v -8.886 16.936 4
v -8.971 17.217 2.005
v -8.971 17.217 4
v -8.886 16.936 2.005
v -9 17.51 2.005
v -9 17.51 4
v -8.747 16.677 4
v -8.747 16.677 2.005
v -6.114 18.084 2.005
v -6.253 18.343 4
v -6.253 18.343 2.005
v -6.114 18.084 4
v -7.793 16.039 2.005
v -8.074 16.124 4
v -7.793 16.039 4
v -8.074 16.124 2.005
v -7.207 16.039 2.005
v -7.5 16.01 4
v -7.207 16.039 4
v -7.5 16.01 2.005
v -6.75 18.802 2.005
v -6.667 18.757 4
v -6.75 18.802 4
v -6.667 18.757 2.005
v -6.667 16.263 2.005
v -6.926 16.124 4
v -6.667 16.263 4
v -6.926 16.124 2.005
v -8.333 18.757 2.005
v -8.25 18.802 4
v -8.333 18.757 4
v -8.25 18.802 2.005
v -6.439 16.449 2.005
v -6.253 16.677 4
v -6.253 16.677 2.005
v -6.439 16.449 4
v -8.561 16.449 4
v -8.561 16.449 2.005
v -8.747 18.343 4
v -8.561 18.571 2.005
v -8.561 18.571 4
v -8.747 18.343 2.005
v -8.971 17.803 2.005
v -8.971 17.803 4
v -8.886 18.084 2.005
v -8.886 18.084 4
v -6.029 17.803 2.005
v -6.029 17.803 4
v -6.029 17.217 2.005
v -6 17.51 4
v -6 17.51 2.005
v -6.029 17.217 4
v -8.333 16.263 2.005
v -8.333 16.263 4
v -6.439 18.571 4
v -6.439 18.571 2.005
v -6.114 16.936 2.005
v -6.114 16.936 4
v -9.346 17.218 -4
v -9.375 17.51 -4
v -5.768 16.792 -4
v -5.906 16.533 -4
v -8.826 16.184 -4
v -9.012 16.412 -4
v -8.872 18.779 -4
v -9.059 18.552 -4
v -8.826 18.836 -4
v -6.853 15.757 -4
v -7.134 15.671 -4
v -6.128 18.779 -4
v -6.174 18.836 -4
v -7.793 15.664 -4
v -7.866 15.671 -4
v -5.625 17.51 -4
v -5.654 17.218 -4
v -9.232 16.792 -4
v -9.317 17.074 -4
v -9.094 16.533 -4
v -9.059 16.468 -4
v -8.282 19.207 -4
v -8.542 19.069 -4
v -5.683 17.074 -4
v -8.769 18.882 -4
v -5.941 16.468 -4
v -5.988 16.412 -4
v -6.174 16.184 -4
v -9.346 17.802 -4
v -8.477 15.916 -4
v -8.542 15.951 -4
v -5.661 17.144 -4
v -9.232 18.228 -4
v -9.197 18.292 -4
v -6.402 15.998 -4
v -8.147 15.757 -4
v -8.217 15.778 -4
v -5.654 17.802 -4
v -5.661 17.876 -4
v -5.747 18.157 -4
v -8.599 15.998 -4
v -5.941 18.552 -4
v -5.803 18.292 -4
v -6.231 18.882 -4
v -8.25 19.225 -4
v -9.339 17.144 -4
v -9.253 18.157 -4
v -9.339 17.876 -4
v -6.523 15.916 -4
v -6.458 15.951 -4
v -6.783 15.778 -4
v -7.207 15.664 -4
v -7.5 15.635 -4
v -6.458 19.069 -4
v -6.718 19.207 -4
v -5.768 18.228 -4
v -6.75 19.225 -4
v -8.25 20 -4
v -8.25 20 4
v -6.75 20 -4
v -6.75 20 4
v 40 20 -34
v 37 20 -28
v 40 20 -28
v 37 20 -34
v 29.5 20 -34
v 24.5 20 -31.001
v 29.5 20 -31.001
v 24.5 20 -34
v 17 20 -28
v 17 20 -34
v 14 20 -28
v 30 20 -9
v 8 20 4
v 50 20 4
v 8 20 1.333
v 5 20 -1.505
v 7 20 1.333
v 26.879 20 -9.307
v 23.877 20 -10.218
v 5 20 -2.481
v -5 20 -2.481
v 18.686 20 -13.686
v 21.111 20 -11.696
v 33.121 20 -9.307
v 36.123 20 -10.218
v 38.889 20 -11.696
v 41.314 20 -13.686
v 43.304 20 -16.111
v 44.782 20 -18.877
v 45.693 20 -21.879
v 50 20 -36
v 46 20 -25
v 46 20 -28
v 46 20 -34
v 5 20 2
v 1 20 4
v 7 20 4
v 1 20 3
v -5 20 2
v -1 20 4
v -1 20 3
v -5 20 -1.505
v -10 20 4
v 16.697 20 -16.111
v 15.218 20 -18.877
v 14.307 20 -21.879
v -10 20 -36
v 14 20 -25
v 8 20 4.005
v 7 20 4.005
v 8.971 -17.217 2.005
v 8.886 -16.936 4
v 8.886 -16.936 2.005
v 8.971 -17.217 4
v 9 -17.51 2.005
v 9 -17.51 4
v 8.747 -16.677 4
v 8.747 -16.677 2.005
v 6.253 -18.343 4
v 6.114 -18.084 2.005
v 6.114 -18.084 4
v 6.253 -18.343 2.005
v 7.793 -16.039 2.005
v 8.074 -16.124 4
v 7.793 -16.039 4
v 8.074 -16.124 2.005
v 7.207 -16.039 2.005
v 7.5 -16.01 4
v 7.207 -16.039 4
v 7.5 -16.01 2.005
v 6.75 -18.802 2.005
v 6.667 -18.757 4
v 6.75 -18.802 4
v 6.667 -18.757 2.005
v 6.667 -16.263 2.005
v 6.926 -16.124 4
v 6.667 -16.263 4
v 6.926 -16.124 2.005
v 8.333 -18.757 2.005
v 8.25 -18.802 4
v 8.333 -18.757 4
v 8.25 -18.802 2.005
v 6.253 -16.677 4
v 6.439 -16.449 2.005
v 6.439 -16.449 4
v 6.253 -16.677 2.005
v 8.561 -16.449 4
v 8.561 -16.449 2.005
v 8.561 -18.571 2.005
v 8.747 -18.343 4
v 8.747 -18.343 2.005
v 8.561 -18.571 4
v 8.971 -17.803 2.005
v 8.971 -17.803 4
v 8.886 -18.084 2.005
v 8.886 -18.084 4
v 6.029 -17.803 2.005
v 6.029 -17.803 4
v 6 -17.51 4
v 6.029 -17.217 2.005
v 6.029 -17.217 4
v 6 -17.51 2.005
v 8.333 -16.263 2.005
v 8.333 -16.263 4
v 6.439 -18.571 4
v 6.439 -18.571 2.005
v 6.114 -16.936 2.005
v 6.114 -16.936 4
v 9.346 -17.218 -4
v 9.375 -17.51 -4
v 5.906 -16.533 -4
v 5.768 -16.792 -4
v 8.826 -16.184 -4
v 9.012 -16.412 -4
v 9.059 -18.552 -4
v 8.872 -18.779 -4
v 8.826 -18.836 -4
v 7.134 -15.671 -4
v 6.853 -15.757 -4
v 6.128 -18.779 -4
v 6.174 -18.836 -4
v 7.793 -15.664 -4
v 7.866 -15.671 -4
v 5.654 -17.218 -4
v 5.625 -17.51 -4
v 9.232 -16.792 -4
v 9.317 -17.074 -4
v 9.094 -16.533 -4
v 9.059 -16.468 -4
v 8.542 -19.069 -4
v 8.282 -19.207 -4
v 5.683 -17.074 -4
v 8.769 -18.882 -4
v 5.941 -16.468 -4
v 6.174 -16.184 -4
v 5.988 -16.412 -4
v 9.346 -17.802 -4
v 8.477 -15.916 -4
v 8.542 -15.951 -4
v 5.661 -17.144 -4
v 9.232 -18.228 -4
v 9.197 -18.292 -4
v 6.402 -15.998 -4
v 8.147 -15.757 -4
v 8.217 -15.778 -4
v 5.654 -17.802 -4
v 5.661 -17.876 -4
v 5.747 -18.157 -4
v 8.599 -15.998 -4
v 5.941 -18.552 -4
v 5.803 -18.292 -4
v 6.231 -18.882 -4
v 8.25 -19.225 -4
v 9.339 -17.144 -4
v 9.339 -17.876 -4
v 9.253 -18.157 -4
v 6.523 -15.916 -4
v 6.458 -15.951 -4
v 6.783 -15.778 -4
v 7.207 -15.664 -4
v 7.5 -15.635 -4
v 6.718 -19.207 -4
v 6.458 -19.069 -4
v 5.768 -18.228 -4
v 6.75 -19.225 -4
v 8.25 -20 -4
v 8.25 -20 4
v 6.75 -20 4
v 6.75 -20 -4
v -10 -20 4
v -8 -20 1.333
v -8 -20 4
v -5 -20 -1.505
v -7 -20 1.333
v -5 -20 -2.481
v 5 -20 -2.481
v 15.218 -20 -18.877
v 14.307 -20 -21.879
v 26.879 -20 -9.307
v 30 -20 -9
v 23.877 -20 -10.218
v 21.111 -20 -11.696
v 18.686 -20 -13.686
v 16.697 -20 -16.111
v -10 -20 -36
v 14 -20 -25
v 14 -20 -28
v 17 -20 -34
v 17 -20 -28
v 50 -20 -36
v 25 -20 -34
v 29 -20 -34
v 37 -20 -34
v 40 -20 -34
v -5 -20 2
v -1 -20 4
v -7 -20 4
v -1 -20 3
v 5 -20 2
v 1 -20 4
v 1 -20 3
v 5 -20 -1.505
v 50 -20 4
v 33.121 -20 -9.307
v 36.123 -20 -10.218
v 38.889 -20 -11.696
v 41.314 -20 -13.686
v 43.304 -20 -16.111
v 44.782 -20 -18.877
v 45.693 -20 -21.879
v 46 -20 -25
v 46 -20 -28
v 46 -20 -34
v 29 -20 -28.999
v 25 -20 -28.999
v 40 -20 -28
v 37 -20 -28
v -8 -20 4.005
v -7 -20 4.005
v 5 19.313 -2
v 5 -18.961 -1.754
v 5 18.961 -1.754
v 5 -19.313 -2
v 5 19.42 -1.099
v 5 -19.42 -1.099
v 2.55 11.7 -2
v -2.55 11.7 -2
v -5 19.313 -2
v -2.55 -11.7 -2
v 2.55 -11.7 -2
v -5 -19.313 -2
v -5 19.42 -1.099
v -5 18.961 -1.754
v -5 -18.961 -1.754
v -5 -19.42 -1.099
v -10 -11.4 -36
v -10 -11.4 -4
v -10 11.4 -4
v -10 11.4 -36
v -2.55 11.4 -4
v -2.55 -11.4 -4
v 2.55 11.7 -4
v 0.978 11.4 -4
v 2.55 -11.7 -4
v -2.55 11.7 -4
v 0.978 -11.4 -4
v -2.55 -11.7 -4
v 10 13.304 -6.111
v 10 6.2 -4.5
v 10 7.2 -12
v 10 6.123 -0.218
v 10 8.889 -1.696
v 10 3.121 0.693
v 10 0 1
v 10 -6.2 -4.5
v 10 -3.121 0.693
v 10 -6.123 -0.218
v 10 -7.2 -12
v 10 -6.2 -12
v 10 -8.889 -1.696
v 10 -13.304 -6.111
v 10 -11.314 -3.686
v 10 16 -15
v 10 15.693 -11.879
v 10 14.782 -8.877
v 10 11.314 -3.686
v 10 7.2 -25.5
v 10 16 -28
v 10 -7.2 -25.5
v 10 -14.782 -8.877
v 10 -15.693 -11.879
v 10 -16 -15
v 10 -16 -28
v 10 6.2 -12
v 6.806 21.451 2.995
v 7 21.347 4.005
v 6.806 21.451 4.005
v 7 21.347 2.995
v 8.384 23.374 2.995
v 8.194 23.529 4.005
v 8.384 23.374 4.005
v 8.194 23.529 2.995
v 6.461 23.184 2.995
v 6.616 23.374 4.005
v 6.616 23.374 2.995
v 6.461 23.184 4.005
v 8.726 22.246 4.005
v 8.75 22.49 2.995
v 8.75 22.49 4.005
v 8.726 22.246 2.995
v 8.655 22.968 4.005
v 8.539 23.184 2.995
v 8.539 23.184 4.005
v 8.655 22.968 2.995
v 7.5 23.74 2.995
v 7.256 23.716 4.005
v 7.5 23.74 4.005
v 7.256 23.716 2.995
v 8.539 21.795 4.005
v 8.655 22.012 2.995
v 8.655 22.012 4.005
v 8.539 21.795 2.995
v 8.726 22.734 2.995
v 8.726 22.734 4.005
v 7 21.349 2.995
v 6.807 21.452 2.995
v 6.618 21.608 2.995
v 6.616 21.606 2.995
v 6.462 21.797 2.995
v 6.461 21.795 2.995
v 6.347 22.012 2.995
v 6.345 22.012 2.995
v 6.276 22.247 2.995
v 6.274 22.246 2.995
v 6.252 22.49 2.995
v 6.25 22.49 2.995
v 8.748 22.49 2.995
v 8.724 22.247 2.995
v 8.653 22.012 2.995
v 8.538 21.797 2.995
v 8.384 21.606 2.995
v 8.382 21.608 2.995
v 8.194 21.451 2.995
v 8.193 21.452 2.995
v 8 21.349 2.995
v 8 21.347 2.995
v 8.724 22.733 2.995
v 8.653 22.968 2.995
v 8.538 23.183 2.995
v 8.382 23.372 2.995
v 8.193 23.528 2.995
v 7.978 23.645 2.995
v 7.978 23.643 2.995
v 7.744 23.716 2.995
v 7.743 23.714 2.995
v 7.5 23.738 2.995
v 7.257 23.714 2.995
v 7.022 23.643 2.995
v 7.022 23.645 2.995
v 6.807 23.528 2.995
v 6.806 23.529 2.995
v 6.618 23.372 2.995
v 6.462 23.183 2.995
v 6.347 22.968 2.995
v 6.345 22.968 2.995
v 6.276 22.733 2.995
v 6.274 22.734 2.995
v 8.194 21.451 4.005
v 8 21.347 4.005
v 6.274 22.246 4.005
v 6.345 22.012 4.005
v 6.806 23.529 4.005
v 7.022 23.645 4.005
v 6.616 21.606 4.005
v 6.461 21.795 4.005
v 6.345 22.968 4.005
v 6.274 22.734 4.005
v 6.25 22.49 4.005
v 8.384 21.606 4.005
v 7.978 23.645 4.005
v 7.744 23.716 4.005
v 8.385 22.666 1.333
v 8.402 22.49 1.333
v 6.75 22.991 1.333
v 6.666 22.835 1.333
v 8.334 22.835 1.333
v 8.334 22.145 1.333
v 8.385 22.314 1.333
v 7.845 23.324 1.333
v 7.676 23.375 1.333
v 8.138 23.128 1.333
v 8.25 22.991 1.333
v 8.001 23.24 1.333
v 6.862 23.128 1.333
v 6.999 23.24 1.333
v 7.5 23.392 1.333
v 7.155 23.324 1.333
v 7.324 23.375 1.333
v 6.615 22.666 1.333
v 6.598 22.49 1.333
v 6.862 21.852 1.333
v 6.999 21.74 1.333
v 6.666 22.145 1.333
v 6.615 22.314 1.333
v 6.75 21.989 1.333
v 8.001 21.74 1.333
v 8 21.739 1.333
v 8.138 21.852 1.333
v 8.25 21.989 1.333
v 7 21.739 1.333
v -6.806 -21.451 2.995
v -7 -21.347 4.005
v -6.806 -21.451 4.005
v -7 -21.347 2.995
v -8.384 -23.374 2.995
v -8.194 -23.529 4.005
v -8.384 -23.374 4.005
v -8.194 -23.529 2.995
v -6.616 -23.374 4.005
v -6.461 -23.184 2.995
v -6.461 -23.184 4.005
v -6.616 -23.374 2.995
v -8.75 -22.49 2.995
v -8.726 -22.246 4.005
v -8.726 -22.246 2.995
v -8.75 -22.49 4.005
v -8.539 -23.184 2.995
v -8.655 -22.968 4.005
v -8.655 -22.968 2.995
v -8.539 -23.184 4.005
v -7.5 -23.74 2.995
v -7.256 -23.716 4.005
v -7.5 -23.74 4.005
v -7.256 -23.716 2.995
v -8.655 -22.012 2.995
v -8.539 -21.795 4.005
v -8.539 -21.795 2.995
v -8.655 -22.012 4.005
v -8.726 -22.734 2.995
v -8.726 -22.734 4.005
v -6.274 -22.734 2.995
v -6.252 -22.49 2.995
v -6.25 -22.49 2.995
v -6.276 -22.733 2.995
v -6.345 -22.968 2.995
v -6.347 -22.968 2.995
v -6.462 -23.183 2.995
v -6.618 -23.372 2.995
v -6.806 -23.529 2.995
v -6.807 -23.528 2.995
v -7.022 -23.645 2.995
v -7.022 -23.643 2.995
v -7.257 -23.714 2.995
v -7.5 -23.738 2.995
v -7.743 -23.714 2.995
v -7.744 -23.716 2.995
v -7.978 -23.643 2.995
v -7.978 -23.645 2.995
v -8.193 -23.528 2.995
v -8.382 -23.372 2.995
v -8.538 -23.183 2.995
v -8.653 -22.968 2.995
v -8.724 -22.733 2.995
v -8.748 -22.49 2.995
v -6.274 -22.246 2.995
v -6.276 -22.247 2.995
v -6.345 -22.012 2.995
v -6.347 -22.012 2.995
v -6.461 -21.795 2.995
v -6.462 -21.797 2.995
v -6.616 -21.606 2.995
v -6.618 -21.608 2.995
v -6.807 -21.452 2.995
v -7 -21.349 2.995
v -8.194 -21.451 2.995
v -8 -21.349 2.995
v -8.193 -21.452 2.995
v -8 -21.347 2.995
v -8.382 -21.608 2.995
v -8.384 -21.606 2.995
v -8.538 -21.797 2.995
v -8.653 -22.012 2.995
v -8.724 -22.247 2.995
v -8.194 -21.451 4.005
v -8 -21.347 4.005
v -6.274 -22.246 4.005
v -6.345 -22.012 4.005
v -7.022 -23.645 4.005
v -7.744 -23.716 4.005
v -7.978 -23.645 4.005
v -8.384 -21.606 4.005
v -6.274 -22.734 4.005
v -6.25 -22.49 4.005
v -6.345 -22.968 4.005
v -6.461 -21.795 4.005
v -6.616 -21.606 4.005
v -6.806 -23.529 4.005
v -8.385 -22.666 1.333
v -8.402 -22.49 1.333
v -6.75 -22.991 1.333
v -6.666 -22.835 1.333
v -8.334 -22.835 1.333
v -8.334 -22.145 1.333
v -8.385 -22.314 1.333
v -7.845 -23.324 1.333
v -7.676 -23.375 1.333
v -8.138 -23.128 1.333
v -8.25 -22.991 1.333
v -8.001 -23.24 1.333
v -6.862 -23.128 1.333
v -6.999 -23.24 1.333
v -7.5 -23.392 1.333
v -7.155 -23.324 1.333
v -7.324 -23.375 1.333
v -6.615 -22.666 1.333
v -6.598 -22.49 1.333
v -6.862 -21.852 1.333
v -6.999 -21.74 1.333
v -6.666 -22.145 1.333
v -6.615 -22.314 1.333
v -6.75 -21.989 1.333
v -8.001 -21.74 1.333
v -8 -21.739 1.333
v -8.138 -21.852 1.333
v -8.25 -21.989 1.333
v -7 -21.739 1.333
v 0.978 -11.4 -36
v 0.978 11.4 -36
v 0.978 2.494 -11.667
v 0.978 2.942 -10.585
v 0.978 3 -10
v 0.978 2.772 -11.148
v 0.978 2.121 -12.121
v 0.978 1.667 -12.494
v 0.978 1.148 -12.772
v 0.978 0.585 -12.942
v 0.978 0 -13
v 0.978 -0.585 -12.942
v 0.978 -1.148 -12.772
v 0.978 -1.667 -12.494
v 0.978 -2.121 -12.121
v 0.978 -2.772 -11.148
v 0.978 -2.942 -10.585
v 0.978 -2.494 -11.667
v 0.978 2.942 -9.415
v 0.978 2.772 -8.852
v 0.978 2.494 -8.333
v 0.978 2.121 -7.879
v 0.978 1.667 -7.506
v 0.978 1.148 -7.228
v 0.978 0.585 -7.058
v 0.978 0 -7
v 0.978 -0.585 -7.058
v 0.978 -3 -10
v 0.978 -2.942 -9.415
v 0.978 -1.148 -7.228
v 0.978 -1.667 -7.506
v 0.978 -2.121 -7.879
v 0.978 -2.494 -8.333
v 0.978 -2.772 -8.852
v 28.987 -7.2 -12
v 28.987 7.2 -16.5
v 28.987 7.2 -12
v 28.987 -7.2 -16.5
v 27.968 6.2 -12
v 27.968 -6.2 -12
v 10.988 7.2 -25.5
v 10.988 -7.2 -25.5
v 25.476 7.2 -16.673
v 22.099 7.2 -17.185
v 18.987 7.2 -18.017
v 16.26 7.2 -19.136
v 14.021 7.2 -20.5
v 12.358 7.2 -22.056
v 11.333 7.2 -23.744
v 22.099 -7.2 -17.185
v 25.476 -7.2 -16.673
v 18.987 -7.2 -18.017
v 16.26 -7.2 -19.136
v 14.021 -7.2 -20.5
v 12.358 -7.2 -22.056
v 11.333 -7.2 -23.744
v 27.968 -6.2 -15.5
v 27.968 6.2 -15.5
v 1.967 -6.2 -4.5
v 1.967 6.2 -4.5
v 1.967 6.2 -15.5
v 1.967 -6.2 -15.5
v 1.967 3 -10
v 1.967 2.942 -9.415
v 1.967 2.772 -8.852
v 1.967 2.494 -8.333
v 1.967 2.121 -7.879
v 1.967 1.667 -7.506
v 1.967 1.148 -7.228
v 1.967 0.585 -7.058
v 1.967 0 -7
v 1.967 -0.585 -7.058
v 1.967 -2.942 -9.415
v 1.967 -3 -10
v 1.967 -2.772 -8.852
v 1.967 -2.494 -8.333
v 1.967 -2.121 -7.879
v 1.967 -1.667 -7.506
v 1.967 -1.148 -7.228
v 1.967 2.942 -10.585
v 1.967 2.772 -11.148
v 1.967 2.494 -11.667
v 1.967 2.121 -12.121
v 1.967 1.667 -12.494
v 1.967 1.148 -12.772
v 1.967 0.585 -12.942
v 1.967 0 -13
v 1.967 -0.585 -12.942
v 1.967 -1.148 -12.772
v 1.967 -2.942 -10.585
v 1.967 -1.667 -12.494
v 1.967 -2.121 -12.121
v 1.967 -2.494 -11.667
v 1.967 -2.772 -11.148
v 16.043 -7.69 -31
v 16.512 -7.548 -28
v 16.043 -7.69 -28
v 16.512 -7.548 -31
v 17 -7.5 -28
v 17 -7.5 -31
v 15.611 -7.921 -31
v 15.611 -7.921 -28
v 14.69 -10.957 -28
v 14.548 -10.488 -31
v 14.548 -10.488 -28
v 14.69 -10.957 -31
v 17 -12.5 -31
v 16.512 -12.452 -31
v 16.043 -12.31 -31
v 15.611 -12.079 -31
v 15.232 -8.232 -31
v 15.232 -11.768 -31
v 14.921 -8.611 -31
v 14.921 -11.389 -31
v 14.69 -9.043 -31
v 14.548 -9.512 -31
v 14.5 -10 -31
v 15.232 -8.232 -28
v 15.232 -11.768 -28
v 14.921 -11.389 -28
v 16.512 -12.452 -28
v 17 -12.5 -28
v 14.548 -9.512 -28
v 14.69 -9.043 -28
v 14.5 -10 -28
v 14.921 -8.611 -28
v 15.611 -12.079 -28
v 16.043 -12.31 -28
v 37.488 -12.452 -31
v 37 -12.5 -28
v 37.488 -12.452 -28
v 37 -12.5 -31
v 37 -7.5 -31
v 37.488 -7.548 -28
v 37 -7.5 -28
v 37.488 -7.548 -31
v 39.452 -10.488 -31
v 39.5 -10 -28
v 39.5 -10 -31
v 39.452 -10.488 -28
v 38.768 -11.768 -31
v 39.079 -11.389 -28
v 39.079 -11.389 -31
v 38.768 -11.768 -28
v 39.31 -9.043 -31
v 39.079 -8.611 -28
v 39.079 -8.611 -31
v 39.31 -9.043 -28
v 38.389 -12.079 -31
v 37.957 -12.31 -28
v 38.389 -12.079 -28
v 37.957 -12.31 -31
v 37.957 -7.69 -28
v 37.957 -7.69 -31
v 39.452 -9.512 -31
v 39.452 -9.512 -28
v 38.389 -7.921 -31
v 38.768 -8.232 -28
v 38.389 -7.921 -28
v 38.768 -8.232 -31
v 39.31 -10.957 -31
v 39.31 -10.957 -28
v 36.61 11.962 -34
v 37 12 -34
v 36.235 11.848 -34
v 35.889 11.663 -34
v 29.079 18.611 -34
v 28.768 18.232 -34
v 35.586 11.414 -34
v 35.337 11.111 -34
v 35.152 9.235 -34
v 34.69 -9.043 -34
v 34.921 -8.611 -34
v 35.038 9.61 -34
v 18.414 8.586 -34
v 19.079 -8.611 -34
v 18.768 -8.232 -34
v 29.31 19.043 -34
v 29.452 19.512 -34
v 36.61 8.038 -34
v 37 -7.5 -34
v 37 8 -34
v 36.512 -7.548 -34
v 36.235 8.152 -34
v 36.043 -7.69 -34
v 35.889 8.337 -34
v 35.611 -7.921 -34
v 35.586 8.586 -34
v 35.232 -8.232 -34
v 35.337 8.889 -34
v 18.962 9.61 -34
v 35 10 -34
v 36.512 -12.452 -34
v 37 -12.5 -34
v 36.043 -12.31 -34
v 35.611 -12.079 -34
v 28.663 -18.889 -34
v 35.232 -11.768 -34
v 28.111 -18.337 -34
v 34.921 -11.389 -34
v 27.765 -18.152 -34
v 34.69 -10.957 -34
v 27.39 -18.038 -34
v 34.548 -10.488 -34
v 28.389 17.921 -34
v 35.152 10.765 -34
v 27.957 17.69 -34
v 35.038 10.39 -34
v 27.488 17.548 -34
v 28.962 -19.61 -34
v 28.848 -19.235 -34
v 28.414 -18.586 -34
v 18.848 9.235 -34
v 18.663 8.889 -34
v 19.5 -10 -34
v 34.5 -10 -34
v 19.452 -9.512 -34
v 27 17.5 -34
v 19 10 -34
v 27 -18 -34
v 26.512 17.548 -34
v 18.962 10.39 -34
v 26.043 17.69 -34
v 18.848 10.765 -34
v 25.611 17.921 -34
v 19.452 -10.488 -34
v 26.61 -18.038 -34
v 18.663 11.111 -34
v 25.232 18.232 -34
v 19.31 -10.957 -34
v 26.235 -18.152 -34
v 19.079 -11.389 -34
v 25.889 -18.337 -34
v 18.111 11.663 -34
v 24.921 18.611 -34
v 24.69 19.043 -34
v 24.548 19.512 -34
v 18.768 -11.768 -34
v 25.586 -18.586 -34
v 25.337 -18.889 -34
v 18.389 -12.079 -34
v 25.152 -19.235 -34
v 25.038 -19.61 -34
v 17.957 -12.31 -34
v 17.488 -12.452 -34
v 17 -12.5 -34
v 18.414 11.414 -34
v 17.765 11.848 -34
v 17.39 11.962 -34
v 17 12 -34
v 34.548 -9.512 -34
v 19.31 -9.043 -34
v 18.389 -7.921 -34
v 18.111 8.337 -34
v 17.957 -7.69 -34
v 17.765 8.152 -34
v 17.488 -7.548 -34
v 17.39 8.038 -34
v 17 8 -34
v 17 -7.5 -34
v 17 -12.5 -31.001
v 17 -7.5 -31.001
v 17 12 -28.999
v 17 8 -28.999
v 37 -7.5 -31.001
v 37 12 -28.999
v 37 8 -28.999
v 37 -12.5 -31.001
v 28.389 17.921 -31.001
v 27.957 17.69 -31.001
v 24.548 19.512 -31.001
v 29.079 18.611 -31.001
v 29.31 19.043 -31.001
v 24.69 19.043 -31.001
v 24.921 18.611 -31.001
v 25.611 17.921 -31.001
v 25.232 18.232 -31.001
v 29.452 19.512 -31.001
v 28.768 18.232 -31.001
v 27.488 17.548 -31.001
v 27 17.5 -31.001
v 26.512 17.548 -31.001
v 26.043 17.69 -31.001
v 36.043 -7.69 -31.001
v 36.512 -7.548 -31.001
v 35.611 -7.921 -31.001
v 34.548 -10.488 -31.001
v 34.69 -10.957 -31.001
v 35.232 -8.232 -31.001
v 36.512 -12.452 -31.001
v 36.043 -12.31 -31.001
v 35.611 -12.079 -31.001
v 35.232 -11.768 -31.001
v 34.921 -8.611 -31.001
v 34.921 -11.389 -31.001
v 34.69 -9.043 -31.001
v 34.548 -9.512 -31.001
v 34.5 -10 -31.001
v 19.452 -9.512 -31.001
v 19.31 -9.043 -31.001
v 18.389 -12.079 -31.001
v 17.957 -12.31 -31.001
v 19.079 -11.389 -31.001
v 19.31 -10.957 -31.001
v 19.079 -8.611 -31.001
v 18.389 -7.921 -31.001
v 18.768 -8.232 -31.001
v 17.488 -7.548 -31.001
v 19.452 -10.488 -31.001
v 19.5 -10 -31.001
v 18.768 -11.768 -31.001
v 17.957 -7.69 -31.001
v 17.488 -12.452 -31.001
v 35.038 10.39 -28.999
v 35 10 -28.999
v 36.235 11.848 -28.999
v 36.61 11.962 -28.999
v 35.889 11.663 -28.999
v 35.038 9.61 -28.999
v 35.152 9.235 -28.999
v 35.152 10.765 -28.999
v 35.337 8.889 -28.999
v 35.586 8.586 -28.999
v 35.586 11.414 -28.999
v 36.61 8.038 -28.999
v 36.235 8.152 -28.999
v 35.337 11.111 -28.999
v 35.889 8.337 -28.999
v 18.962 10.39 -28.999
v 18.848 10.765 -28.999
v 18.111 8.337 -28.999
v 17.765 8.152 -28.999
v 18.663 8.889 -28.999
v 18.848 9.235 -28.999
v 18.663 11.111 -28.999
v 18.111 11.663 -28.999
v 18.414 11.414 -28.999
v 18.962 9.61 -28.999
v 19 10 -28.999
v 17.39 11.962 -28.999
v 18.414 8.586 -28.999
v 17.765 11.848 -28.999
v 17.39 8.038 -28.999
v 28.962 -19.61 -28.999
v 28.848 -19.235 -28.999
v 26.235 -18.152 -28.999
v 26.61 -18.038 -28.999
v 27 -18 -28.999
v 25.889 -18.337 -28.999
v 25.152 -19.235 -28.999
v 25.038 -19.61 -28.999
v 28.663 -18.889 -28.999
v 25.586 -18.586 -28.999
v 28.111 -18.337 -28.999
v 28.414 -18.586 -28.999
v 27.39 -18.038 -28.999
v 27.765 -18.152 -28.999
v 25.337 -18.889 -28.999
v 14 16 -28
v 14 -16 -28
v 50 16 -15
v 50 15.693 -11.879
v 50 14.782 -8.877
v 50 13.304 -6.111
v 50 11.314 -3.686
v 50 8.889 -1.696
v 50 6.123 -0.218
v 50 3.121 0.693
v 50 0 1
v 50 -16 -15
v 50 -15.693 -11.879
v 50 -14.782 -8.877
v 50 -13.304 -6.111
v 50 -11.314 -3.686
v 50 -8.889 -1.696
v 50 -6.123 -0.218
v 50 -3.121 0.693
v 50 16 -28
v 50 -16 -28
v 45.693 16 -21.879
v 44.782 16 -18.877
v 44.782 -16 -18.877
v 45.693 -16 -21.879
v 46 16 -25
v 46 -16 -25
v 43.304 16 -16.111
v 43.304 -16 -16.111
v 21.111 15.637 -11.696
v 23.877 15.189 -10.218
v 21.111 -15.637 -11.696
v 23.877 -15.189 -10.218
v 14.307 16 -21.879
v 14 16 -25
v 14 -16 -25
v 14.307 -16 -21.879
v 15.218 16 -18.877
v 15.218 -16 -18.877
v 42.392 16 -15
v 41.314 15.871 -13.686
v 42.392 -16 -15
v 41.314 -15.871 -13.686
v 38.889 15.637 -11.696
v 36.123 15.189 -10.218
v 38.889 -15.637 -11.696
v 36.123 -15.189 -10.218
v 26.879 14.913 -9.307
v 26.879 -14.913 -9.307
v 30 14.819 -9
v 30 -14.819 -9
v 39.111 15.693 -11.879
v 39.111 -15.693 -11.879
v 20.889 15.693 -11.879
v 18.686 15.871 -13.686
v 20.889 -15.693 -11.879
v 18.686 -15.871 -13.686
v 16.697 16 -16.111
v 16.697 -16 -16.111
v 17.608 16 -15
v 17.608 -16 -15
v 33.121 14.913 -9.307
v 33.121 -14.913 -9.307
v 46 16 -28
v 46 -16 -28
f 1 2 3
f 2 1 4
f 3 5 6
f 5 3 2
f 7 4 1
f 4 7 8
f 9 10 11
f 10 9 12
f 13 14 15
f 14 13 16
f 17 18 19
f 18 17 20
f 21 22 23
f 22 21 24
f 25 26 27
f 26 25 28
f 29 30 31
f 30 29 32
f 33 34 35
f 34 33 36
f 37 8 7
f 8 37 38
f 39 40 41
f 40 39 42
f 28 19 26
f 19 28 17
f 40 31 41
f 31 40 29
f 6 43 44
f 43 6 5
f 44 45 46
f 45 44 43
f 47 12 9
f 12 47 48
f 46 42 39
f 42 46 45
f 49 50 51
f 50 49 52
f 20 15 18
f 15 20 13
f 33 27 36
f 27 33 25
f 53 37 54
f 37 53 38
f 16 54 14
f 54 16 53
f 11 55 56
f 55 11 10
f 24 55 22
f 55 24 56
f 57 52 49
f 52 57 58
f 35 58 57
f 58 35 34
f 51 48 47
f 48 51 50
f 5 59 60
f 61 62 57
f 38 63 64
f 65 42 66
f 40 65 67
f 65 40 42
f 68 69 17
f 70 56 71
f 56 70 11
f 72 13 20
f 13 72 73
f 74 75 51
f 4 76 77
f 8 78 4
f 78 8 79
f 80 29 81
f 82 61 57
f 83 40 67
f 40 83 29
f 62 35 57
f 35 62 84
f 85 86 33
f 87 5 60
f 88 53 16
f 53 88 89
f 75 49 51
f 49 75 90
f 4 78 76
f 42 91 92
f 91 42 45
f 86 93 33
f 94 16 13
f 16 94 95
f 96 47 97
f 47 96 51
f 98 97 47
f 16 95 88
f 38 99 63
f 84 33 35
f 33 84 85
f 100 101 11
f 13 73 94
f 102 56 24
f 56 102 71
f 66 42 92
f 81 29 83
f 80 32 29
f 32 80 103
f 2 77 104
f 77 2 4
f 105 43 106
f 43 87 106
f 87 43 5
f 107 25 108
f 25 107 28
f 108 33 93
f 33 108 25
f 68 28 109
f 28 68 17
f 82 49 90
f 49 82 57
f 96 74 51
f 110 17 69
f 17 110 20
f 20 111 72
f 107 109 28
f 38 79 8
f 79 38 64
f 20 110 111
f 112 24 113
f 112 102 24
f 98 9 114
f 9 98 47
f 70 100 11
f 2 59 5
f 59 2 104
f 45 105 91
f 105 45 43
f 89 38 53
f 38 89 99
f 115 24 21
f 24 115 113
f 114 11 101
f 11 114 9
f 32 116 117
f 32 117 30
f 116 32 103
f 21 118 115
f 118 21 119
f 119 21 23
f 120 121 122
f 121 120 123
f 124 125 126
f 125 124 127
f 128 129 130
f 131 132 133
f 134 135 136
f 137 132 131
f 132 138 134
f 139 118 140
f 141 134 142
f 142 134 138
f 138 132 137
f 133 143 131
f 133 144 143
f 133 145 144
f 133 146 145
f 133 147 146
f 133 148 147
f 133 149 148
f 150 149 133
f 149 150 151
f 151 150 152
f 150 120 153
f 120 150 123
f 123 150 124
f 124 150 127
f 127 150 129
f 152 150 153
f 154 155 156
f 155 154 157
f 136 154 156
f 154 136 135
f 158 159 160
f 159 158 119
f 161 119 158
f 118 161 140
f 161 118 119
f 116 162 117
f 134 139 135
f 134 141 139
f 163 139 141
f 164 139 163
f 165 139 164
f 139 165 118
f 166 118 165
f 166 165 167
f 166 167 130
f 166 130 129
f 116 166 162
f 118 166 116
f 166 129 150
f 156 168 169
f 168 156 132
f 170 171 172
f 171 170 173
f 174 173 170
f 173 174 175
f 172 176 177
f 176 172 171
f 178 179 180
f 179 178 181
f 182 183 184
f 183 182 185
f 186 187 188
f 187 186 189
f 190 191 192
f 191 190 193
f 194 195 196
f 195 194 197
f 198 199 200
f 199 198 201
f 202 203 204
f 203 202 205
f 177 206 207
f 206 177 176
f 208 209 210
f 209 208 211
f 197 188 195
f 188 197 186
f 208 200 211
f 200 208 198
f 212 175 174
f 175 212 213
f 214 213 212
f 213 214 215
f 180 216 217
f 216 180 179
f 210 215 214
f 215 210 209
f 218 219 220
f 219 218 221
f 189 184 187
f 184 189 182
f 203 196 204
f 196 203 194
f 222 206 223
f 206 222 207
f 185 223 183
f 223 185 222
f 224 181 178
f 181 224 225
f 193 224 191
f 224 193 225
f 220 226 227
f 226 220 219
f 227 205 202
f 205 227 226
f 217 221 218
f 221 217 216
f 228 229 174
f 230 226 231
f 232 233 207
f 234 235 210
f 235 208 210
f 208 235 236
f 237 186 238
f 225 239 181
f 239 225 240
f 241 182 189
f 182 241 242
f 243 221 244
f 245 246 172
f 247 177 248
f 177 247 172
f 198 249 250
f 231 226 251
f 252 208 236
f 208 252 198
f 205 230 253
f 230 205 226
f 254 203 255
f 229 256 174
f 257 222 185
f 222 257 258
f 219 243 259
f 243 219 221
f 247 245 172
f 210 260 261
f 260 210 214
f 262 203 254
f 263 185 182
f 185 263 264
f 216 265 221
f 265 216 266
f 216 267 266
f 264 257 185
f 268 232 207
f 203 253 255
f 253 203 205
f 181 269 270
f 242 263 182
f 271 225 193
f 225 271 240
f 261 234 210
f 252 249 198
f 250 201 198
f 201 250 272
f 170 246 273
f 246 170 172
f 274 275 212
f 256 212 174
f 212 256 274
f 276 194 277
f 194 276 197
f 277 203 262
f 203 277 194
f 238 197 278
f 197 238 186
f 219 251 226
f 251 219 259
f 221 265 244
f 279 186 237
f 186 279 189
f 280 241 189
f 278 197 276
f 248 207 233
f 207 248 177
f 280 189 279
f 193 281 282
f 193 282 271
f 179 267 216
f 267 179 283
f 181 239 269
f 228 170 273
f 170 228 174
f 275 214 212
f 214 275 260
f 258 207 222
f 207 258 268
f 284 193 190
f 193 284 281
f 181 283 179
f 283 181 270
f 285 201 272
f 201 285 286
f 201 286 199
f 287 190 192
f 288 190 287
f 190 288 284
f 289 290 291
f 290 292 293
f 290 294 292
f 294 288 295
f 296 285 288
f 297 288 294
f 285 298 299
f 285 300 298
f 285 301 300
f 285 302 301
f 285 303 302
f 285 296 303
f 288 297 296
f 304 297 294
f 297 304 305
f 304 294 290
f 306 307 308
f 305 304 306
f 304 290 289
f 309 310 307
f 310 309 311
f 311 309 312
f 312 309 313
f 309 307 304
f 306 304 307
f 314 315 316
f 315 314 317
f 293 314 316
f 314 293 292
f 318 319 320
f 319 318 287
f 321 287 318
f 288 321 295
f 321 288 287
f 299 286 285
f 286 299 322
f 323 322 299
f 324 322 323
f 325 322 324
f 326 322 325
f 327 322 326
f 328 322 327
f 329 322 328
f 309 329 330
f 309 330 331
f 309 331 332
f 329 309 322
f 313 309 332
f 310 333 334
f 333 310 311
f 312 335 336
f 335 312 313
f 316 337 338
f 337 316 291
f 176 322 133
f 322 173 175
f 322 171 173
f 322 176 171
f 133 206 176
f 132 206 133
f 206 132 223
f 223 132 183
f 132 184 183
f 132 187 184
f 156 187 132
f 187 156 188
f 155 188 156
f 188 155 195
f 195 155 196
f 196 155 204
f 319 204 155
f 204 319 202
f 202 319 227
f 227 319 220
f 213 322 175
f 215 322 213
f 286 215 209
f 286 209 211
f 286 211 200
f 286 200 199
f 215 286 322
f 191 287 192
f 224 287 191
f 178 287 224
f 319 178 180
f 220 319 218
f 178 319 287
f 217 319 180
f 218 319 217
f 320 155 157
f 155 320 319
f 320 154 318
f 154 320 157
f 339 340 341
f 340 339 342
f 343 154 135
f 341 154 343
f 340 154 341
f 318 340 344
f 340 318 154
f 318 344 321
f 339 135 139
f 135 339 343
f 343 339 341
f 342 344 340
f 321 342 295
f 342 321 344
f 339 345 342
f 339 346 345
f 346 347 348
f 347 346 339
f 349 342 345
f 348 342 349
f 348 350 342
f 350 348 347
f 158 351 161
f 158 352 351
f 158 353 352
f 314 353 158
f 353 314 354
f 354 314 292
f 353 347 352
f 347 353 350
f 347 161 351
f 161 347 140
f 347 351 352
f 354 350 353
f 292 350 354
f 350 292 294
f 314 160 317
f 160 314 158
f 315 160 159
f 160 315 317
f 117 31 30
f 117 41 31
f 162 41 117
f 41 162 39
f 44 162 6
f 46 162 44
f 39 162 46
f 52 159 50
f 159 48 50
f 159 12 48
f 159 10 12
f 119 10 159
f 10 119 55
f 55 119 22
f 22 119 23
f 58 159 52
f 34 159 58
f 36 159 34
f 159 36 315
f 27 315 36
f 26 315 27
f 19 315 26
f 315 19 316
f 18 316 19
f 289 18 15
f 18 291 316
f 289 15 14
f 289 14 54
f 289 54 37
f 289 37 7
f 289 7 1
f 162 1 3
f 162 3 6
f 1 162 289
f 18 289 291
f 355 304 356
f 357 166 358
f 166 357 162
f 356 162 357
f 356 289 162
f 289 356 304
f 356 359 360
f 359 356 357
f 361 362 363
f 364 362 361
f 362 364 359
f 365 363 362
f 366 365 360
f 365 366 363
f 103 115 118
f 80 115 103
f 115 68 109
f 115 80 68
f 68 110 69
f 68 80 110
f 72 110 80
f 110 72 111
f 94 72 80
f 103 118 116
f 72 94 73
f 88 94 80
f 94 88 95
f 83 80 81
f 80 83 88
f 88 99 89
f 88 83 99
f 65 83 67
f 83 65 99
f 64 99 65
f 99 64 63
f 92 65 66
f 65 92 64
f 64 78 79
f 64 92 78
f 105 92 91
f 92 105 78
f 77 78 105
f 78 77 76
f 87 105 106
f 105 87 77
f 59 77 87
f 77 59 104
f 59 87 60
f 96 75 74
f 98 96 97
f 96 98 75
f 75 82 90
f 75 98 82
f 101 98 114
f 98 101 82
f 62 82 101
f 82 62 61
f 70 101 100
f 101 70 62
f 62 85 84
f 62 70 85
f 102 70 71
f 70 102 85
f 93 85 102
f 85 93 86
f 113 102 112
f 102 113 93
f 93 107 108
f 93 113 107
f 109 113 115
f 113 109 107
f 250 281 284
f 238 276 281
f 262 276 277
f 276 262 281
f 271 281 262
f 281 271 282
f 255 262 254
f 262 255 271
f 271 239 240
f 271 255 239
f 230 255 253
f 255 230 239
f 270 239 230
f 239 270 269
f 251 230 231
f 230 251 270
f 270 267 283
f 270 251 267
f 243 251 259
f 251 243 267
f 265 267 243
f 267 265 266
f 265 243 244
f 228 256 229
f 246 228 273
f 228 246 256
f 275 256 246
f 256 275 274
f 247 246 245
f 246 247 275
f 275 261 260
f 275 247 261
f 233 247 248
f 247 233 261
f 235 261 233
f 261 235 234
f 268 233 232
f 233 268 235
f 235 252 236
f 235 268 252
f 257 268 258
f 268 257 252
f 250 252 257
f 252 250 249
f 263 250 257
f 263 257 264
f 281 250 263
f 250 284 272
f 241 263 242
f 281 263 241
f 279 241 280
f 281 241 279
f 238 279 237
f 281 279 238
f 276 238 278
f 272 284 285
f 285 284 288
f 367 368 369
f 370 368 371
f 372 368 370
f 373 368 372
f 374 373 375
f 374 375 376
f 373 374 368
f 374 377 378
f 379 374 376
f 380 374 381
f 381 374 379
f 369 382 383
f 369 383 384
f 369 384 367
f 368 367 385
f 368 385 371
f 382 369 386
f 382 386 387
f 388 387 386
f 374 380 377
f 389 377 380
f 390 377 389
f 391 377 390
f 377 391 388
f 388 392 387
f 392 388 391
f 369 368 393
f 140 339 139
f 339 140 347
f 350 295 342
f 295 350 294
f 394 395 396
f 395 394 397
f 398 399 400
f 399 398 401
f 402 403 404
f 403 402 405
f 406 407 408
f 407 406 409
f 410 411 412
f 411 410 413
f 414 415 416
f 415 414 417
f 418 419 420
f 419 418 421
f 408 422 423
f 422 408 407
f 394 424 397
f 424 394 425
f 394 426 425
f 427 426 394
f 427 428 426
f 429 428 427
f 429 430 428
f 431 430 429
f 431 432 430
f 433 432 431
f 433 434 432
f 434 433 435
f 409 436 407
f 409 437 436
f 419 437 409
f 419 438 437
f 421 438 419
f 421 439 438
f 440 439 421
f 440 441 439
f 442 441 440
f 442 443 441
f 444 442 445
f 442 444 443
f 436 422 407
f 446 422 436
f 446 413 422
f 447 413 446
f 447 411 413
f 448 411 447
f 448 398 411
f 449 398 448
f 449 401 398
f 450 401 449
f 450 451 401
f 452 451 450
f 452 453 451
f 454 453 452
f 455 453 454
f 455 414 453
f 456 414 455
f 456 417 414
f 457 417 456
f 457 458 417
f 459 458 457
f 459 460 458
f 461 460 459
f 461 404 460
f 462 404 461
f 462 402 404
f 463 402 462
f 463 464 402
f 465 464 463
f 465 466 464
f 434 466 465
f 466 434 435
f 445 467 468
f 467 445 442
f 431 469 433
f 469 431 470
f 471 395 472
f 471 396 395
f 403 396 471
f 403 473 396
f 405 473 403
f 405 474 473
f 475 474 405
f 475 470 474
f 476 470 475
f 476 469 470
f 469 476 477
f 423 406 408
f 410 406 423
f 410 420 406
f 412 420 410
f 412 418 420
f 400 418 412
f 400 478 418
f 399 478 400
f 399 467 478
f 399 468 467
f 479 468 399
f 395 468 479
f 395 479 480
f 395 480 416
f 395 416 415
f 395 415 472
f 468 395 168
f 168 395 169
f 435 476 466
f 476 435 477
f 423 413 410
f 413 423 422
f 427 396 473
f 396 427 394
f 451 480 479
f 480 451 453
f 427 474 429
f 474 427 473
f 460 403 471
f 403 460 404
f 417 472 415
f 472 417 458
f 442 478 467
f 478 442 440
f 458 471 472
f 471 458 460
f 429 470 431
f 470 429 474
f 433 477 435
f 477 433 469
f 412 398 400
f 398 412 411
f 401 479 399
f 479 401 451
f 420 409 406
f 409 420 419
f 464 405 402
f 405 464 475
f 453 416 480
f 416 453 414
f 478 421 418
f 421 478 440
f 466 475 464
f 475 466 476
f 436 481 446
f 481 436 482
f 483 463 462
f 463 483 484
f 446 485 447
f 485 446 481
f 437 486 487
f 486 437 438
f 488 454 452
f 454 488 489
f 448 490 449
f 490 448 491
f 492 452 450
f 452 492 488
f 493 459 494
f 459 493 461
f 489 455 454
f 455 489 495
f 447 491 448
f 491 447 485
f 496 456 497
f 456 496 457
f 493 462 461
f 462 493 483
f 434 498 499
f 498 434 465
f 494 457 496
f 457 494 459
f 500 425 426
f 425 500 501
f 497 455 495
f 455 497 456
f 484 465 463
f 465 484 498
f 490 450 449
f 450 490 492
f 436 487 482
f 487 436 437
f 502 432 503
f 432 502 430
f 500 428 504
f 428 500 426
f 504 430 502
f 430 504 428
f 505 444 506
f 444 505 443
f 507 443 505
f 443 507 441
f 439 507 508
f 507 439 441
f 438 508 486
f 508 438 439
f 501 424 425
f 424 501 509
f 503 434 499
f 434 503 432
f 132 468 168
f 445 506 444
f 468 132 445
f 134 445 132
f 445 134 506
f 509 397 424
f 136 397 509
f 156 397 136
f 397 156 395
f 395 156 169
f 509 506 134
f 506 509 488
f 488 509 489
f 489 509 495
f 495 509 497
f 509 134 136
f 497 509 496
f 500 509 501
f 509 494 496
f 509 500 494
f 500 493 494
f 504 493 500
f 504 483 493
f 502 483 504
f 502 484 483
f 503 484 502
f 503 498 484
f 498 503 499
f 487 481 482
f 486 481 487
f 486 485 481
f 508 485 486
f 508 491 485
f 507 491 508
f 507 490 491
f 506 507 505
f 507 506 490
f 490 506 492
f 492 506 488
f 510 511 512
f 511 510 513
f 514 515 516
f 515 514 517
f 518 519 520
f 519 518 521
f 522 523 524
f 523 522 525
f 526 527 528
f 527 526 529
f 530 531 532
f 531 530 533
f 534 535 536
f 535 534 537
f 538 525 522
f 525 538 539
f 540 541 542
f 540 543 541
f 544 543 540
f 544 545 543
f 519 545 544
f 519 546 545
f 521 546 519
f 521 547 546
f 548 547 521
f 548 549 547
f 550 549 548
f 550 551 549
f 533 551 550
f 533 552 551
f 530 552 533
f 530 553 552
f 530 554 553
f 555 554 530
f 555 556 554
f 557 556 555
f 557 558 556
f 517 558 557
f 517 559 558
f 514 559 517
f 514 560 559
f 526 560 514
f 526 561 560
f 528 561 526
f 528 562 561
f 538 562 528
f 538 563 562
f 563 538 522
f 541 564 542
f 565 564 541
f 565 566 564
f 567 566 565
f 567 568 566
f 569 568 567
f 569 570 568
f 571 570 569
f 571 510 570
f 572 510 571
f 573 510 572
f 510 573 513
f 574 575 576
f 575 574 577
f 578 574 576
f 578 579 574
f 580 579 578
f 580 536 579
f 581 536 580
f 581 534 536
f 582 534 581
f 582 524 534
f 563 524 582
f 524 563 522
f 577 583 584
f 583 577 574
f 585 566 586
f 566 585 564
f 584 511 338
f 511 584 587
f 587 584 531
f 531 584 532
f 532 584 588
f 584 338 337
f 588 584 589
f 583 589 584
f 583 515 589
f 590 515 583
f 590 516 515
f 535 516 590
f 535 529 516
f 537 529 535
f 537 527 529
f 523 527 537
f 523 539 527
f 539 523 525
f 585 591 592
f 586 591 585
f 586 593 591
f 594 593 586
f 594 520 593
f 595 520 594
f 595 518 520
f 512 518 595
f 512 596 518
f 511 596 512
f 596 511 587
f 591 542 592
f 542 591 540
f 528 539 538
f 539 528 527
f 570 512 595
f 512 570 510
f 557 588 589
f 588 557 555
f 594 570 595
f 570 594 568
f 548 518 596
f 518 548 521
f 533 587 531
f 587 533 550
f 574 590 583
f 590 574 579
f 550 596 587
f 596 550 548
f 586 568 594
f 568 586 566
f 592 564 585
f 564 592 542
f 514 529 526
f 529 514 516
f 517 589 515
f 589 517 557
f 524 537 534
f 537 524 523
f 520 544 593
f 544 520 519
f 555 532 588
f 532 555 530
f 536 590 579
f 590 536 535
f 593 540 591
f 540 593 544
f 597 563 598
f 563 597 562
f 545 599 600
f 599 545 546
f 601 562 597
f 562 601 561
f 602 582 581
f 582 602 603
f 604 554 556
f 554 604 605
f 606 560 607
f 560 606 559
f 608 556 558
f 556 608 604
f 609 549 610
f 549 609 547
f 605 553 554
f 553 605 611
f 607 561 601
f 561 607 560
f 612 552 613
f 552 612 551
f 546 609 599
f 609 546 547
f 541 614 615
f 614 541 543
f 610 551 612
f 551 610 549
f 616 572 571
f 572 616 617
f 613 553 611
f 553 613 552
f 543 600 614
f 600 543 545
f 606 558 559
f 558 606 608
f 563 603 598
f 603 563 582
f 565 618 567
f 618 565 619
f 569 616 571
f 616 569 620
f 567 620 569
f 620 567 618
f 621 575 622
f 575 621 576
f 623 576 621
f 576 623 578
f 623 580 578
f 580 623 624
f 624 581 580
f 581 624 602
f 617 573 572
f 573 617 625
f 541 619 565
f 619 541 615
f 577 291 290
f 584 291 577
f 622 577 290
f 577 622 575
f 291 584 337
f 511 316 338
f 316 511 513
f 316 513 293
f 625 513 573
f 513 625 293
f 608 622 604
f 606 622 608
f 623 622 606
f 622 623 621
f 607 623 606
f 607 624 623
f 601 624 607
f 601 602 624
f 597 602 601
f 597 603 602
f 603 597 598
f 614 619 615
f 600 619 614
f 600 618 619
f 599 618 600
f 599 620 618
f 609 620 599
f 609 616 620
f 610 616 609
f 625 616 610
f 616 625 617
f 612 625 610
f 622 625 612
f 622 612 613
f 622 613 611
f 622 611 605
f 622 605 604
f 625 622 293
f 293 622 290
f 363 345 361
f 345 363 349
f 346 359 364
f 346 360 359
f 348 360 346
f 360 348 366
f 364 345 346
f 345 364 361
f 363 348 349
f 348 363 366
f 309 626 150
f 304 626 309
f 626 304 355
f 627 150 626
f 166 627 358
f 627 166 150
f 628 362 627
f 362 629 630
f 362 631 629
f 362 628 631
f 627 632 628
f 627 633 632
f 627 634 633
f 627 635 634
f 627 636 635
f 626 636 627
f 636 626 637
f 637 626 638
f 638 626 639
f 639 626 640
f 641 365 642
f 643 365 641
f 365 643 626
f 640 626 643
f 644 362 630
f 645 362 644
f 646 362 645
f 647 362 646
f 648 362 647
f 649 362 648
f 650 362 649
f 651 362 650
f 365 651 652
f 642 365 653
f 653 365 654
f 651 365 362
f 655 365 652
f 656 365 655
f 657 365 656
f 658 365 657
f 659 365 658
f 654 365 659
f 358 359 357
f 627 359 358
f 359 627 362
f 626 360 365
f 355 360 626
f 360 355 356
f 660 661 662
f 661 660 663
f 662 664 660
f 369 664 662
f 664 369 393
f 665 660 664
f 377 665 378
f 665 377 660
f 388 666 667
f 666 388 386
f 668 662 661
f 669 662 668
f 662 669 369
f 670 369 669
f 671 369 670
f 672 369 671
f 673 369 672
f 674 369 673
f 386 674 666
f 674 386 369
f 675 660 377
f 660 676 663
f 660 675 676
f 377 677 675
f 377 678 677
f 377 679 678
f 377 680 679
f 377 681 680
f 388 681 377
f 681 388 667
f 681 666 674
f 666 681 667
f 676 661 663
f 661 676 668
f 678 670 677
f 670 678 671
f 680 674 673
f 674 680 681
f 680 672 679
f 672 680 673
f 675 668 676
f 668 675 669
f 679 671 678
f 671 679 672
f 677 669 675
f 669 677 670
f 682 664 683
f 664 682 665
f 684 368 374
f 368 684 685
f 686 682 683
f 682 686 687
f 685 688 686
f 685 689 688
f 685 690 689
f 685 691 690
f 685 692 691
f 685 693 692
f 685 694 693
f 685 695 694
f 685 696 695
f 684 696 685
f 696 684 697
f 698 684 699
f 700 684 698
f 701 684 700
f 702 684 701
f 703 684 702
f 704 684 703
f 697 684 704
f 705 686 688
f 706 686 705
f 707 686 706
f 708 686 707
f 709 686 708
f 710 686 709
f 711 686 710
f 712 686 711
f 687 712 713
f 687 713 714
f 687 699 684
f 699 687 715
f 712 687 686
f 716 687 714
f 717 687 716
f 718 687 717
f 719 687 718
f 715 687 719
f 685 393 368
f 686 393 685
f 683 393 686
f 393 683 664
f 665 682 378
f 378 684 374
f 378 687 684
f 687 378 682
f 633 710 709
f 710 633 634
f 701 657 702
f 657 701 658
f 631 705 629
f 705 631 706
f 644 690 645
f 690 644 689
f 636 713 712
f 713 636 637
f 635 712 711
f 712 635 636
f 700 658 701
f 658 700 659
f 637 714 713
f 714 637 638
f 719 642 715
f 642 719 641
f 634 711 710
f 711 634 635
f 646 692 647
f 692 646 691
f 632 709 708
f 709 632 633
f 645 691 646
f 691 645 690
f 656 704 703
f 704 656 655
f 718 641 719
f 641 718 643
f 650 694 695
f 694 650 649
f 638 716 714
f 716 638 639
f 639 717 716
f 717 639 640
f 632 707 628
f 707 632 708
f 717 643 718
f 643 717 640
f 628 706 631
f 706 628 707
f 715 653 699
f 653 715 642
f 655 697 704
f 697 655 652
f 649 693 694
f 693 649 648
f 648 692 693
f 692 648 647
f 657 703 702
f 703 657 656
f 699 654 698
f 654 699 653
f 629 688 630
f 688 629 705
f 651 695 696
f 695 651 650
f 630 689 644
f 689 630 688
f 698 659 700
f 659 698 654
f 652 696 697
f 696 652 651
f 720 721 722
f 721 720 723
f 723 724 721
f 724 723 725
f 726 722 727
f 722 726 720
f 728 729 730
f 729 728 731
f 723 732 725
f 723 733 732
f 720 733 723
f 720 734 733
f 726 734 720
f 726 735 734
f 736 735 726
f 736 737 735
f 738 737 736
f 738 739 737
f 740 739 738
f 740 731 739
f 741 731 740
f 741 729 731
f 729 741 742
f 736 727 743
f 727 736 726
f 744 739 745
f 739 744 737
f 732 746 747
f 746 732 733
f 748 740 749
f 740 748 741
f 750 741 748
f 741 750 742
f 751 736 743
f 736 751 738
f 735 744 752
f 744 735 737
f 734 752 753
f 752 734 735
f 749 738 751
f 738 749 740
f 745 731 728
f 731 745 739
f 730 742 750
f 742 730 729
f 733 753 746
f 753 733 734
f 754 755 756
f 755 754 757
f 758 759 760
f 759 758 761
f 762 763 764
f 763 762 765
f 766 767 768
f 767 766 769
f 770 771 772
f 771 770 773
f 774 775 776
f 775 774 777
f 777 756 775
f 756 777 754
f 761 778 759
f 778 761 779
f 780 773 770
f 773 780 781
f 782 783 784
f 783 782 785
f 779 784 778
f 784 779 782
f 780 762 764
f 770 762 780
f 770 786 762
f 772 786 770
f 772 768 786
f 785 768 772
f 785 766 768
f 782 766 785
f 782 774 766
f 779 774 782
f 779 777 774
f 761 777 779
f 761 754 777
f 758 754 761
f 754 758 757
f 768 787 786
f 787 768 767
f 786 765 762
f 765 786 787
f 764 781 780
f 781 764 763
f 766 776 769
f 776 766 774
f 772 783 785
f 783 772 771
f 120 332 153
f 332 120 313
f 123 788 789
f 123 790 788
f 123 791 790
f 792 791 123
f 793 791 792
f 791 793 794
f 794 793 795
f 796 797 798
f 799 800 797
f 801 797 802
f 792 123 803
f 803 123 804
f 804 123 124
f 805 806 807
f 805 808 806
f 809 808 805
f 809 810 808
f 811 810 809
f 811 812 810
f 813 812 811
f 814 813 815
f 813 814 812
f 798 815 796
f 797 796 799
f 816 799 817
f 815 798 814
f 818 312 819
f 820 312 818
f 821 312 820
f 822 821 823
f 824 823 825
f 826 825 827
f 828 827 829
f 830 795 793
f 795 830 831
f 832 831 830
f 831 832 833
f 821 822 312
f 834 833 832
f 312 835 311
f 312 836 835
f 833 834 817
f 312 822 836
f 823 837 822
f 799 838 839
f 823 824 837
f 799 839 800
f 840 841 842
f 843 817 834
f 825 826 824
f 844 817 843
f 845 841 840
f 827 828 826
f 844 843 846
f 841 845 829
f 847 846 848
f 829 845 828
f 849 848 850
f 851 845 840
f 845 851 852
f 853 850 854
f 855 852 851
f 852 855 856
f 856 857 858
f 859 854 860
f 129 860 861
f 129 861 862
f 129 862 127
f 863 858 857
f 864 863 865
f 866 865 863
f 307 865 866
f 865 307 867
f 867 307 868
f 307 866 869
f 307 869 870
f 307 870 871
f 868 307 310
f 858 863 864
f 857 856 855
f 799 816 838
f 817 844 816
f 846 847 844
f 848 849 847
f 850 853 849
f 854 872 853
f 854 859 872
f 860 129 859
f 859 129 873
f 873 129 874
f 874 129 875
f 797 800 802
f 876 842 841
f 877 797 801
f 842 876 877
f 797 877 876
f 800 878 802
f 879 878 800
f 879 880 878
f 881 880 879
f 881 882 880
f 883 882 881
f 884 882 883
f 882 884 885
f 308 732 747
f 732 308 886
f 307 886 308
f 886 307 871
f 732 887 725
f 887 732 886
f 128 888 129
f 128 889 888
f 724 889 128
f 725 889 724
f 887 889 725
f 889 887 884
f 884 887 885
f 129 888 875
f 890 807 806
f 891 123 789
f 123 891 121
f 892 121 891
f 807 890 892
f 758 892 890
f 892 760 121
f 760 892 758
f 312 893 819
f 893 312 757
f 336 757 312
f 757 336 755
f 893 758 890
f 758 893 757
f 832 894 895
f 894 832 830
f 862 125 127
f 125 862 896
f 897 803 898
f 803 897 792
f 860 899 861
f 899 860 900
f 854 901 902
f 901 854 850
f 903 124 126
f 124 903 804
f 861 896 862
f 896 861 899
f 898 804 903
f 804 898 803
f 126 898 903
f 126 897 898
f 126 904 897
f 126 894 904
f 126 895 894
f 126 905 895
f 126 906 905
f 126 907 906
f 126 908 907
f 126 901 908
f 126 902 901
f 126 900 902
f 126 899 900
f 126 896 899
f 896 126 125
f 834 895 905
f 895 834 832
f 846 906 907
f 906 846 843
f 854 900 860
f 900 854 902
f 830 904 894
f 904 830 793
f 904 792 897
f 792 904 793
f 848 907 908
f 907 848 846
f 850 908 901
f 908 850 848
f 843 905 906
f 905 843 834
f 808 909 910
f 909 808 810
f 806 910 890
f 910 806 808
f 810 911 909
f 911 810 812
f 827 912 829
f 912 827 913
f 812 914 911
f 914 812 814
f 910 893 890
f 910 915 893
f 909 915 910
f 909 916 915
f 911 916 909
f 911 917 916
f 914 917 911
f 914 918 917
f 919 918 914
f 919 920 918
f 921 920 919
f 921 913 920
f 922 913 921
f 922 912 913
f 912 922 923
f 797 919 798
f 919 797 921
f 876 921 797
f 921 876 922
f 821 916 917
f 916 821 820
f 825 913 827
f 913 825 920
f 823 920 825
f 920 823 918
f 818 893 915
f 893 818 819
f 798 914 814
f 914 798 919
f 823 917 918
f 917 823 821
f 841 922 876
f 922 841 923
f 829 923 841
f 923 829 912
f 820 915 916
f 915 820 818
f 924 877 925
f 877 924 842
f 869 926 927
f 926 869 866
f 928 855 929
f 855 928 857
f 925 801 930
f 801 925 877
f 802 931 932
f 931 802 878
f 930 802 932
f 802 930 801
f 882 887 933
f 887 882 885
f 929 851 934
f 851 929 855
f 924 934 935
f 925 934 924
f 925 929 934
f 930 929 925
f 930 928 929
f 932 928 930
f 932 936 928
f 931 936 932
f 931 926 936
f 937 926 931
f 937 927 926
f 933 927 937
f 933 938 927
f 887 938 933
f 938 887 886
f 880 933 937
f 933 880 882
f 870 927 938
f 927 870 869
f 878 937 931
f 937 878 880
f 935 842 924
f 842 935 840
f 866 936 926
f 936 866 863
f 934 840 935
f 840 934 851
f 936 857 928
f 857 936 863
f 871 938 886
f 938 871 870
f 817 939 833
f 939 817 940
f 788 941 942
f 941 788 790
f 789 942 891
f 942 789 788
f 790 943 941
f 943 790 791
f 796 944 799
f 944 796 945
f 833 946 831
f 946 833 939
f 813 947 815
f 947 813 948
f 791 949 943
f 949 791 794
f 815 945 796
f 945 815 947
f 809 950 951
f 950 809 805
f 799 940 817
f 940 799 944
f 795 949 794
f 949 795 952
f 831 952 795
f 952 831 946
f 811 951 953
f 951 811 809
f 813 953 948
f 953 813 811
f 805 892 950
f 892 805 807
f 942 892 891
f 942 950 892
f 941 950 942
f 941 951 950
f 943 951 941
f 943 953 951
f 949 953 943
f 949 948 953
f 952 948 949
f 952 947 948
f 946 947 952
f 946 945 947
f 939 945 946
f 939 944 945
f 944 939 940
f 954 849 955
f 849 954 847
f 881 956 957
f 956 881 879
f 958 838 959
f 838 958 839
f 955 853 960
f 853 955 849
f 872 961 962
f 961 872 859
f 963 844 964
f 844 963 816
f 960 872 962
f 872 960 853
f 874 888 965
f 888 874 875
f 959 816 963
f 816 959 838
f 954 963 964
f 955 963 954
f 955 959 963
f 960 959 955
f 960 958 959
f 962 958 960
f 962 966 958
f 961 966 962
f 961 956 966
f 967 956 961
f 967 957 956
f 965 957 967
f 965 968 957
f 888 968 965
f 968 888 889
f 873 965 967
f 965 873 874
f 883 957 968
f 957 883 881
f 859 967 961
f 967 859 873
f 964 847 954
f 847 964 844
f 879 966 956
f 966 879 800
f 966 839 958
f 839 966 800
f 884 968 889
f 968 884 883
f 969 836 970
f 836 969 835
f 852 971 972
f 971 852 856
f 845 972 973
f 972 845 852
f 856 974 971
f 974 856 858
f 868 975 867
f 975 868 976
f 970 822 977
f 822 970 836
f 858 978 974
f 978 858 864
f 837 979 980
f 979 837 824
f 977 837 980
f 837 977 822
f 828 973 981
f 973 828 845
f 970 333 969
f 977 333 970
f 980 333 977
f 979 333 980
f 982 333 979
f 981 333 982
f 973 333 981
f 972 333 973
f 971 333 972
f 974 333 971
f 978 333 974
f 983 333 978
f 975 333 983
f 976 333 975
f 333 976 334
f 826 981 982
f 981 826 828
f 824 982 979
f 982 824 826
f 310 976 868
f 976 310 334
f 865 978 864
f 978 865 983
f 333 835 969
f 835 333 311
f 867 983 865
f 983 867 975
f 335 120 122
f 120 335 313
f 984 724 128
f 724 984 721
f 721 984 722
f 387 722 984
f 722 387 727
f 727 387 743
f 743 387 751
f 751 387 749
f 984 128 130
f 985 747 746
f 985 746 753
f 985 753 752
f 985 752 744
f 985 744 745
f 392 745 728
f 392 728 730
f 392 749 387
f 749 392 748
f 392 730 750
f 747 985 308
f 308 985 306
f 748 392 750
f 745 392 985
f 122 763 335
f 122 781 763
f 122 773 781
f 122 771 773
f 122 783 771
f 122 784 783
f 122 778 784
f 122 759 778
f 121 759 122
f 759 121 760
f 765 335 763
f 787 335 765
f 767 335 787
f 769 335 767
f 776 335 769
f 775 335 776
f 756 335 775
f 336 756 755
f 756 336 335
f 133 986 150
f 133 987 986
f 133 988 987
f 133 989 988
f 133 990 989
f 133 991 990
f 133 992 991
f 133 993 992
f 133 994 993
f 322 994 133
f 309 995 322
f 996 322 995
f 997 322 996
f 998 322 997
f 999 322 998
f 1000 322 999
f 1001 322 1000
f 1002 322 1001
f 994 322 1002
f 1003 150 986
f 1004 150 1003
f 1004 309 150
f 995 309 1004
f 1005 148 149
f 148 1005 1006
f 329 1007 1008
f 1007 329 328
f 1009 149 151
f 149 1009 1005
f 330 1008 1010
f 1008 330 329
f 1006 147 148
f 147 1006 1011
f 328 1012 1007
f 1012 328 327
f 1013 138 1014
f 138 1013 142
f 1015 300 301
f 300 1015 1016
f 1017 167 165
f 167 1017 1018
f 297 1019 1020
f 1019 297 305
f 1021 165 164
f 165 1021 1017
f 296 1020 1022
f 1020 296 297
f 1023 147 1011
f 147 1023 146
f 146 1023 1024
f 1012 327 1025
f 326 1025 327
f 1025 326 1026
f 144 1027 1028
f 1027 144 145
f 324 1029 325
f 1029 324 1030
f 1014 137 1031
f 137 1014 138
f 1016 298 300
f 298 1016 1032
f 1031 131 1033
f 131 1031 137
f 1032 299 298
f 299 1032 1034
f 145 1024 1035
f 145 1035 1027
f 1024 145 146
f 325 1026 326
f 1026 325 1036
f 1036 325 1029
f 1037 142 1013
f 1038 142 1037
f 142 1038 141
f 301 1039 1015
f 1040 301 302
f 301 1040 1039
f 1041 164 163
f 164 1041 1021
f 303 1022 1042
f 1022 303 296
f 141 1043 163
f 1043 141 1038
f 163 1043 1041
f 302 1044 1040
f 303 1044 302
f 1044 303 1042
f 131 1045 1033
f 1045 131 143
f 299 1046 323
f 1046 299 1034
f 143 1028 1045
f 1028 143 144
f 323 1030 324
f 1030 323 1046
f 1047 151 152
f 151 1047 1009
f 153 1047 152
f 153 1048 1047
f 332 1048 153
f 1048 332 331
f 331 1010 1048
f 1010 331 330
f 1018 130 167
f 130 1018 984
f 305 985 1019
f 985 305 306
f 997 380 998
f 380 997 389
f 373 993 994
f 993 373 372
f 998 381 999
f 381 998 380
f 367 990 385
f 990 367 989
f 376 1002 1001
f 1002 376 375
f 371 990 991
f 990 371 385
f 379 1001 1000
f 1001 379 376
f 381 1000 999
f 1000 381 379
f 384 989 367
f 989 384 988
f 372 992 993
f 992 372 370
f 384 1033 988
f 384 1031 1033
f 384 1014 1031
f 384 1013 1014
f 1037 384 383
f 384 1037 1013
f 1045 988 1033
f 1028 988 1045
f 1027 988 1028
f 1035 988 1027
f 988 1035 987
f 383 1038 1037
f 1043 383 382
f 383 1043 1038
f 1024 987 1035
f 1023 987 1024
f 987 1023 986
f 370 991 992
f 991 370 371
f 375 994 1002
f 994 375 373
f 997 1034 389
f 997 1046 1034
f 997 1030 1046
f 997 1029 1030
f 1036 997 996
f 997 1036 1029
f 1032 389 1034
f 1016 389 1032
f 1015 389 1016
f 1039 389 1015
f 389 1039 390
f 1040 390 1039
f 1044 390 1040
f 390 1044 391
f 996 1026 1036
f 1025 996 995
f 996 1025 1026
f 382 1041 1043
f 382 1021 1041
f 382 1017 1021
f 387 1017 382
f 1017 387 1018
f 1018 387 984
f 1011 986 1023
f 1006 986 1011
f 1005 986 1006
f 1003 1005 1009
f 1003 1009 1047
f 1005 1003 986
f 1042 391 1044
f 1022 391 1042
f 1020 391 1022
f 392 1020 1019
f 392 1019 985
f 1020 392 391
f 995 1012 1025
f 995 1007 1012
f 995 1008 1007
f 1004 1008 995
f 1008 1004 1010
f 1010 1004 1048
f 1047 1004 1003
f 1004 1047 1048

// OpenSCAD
/*
    grid tile train tube track motor house 
    
    n20 dc gear motor 10x12x25
    
    Mini N20 Gear Reduction Motor DC 3V-6V 55RPM Slow Speed
*/
include <train_tube_track.scad>;

motor_length = 26;
motor_height = 11;
motor_width = 12.4;
motor_holder_wall = 1;

//translate([0,0,height])
union() {
//    straight_track_h_double_plug(grid);
difference() {
    straight_track_double_plug(grid);

    /* cut out gear opening */
    translate([0,0,-inner_height+d])
    cube([ship_width*house_gear_width_factor,
    ship_length*1.95, inner_height], center=true);
}

difference() {

    union() {
        translate([0,0,-height/2-outer_height/2]) 
        difference() {
            cube([outer_width, grid, height], center=true);
            translate([-outer_width/2+gear_thickness/2,0,d])
            cube([outer_width, ship_length*1.9, height+3*d], center=true);
        }
        /* N20 motor block holder */
        translate([motor_length/2+gear_thickness/2+d+1,0,
         -gear_radius-inner_height/2-motor_height/4-motor_holder_wall*2-4])
        difference() {
            cube([motor_length+motor_holder_wall*2, 
                motor_width+motor_holder_wall*2,
                motor_height/2+8], center=true);
            translate([(motor_length+motor_holder_wall*2)/2,
                0, -(motor_height/2+8)/2])
            scale([2, 1, 1])
            rotate([90,0,0])
            cylinder(r=8+1, h=motor_width+motor_holder_wall*2+0.1, center=true);
        }
    }
    
    /* N20 motor block cutout*/
    translate([motor_length/2+gear_thickness/2-d+1,0,-gear_radius-inner_height/2])
    cube([motor_length, motor_width, motor_height], center=true);
    
    /* N20 motor axis cutout*/    
    translate([0,0, -gear_radius-inner_height/2])
    rotate([0,90,0])
    cylinder(d=6,h=grid,center=true);
}

translate([13+4+outer_width/2,0,-height-outer_height/2+4])
difference() {
    cube([26, grid, 8], center=true);    
    translate([0,0,-4 + 2]) // -5: cube +2 bottom height
    rotate([0,0,90])
    grove_2x1(3, 12);
}

//translate([0,0,-gear_radius-inner_height/2])
//rotate([0,90,0])
//ttt_gear(3, 0.5);
}

translate([3*grid/4, 0, -height])
platform(bheight = 6, side_fix=4, is_base=true);

//base_grid();
